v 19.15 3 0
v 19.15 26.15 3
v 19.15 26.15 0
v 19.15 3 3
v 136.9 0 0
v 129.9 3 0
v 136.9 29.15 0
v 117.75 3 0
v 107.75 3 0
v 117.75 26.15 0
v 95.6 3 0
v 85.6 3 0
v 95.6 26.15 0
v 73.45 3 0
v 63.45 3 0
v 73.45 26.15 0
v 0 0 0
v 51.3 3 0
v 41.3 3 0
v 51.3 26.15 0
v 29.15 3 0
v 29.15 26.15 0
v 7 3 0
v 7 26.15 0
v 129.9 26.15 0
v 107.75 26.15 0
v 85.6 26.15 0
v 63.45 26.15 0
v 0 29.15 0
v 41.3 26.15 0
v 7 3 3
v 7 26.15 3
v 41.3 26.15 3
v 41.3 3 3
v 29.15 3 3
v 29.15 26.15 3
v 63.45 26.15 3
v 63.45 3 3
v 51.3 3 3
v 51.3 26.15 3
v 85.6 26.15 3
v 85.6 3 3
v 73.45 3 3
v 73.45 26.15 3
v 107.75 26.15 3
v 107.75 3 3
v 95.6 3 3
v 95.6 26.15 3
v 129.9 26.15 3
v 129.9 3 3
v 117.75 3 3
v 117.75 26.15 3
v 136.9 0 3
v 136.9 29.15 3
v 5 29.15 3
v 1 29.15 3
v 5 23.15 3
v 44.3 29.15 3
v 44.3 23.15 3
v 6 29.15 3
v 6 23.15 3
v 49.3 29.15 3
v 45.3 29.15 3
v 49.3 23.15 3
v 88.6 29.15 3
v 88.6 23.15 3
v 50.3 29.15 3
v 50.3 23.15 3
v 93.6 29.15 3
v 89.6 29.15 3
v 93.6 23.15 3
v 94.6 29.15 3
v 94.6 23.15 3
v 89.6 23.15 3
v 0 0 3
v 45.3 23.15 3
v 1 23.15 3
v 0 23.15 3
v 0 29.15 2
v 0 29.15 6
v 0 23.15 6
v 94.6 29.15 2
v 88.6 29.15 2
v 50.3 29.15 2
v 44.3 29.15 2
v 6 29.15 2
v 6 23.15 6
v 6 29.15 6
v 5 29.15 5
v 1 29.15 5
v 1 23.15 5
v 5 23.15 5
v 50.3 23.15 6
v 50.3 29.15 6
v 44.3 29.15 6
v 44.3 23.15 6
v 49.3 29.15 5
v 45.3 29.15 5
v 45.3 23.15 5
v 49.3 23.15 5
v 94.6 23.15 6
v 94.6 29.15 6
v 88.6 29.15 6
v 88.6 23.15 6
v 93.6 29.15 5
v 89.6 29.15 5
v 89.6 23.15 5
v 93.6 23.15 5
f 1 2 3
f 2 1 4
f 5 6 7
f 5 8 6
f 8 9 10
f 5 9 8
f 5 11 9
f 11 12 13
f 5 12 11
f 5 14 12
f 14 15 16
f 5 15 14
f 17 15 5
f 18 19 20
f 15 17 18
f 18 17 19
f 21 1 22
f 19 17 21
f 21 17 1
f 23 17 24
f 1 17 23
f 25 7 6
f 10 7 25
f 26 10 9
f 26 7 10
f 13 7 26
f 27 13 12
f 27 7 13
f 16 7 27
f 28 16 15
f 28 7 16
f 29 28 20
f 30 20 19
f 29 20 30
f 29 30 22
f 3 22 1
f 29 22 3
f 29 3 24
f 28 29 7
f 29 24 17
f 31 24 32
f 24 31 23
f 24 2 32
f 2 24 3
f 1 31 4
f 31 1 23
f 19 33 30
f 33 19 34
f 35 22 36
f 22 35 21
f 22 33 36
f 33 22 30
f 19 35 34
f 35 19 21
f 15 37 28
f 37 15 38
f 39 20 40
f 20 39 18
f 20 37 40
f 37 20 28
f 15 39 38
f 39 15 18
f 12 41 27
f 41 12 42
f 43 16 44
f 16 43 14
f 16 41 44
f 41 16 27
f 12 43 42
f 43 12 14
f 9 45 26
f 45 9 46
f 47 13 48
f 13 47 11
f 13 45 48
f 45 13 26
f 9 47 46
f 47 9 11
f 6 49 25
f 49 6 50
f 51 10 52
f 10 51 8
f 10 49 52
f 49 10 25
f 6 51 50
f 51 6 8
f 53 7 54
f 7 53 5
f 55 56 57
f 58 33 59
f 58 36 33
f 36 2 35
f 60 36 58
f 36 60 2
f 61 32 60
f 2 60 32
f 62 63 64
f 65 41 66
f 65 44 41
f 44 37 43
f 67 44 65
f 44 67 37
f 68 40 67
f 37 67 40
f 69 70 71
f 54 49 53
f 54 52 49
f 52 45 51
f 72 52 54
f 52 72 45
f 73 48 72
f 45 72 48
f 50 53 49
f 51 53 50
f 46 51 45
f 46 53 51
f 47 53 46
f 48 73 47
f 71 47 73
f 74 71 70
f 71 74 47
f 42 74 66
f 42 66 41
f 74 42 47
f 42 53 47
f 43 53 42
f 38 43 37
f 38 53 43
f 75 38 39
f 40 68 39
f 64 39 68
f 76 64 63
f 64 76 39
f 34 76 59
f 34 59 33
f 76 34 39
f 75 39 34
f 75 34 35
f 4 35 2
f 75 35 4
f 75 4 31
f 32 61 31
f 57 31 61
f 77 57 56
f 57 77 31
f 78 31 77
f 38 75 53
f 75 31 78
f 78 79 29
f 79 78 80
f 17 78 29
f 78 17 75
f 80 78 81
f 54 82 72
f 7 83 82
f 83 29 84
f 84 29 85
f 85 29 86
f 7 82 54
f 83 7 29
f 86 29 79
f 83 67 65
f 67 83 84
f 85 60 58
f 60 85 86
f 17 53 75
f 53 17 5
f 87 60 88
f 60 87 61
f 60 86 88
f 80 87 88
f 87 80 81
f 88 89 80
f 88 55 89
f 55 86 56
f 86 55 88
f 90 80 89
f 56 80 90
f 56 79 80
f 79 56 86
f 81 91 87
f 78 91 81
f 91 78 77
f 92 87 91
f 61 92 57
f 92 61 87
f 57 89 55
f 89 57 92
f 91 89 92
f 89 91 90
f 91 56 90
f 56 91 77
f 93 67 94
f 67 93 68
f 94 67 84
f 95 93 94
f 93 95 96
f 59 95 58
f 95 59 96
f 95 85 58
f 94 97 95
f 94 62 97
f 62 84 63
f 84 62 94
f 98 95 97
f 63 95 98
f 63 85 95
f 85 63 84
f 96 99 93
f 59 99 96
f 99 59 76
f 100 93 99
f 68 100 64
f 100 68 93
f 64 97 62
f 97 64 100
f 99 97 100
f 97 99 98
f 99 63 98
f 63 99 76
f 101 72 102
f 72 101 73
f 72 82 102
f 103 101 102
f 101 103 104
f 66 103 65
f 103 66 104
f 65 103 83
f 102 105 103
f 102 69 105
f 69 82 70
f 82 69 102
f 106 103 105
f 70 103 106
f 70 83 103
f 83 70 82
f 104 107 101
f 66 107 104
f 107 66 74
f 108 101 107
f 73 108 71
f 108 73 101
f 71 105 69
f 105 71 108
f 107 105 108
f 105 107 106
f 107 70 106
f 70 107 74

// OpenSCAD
ax = 12.15;
ay = 23.15;
az =  28.0;
xborder = 10;
xborder2 = 2;
yborder=3;
N=6;
h=3;

module servo() {
    #cube([ax,ay,az]);
}

module mount() {
    difference() {
        cube([6,6,4]);
        #translate([1,0,1]) cube([4,6,2]);
    }
}

module main() {
    difference() {
        cube([N*(ax+xborder)+2*xborder2,2*yborder+ay, h]);
        for (i=[0:N-1]) {
            translate([xborder/2+i*(xborder+ax)+xborder2, yborder, 0]) servo();
        }
    }
    for(i=[0:2:N/2+1]) {
        translate([(xborder+ax)*i,ay+2*yborder-6,2]) mount();
    }
}

main();
